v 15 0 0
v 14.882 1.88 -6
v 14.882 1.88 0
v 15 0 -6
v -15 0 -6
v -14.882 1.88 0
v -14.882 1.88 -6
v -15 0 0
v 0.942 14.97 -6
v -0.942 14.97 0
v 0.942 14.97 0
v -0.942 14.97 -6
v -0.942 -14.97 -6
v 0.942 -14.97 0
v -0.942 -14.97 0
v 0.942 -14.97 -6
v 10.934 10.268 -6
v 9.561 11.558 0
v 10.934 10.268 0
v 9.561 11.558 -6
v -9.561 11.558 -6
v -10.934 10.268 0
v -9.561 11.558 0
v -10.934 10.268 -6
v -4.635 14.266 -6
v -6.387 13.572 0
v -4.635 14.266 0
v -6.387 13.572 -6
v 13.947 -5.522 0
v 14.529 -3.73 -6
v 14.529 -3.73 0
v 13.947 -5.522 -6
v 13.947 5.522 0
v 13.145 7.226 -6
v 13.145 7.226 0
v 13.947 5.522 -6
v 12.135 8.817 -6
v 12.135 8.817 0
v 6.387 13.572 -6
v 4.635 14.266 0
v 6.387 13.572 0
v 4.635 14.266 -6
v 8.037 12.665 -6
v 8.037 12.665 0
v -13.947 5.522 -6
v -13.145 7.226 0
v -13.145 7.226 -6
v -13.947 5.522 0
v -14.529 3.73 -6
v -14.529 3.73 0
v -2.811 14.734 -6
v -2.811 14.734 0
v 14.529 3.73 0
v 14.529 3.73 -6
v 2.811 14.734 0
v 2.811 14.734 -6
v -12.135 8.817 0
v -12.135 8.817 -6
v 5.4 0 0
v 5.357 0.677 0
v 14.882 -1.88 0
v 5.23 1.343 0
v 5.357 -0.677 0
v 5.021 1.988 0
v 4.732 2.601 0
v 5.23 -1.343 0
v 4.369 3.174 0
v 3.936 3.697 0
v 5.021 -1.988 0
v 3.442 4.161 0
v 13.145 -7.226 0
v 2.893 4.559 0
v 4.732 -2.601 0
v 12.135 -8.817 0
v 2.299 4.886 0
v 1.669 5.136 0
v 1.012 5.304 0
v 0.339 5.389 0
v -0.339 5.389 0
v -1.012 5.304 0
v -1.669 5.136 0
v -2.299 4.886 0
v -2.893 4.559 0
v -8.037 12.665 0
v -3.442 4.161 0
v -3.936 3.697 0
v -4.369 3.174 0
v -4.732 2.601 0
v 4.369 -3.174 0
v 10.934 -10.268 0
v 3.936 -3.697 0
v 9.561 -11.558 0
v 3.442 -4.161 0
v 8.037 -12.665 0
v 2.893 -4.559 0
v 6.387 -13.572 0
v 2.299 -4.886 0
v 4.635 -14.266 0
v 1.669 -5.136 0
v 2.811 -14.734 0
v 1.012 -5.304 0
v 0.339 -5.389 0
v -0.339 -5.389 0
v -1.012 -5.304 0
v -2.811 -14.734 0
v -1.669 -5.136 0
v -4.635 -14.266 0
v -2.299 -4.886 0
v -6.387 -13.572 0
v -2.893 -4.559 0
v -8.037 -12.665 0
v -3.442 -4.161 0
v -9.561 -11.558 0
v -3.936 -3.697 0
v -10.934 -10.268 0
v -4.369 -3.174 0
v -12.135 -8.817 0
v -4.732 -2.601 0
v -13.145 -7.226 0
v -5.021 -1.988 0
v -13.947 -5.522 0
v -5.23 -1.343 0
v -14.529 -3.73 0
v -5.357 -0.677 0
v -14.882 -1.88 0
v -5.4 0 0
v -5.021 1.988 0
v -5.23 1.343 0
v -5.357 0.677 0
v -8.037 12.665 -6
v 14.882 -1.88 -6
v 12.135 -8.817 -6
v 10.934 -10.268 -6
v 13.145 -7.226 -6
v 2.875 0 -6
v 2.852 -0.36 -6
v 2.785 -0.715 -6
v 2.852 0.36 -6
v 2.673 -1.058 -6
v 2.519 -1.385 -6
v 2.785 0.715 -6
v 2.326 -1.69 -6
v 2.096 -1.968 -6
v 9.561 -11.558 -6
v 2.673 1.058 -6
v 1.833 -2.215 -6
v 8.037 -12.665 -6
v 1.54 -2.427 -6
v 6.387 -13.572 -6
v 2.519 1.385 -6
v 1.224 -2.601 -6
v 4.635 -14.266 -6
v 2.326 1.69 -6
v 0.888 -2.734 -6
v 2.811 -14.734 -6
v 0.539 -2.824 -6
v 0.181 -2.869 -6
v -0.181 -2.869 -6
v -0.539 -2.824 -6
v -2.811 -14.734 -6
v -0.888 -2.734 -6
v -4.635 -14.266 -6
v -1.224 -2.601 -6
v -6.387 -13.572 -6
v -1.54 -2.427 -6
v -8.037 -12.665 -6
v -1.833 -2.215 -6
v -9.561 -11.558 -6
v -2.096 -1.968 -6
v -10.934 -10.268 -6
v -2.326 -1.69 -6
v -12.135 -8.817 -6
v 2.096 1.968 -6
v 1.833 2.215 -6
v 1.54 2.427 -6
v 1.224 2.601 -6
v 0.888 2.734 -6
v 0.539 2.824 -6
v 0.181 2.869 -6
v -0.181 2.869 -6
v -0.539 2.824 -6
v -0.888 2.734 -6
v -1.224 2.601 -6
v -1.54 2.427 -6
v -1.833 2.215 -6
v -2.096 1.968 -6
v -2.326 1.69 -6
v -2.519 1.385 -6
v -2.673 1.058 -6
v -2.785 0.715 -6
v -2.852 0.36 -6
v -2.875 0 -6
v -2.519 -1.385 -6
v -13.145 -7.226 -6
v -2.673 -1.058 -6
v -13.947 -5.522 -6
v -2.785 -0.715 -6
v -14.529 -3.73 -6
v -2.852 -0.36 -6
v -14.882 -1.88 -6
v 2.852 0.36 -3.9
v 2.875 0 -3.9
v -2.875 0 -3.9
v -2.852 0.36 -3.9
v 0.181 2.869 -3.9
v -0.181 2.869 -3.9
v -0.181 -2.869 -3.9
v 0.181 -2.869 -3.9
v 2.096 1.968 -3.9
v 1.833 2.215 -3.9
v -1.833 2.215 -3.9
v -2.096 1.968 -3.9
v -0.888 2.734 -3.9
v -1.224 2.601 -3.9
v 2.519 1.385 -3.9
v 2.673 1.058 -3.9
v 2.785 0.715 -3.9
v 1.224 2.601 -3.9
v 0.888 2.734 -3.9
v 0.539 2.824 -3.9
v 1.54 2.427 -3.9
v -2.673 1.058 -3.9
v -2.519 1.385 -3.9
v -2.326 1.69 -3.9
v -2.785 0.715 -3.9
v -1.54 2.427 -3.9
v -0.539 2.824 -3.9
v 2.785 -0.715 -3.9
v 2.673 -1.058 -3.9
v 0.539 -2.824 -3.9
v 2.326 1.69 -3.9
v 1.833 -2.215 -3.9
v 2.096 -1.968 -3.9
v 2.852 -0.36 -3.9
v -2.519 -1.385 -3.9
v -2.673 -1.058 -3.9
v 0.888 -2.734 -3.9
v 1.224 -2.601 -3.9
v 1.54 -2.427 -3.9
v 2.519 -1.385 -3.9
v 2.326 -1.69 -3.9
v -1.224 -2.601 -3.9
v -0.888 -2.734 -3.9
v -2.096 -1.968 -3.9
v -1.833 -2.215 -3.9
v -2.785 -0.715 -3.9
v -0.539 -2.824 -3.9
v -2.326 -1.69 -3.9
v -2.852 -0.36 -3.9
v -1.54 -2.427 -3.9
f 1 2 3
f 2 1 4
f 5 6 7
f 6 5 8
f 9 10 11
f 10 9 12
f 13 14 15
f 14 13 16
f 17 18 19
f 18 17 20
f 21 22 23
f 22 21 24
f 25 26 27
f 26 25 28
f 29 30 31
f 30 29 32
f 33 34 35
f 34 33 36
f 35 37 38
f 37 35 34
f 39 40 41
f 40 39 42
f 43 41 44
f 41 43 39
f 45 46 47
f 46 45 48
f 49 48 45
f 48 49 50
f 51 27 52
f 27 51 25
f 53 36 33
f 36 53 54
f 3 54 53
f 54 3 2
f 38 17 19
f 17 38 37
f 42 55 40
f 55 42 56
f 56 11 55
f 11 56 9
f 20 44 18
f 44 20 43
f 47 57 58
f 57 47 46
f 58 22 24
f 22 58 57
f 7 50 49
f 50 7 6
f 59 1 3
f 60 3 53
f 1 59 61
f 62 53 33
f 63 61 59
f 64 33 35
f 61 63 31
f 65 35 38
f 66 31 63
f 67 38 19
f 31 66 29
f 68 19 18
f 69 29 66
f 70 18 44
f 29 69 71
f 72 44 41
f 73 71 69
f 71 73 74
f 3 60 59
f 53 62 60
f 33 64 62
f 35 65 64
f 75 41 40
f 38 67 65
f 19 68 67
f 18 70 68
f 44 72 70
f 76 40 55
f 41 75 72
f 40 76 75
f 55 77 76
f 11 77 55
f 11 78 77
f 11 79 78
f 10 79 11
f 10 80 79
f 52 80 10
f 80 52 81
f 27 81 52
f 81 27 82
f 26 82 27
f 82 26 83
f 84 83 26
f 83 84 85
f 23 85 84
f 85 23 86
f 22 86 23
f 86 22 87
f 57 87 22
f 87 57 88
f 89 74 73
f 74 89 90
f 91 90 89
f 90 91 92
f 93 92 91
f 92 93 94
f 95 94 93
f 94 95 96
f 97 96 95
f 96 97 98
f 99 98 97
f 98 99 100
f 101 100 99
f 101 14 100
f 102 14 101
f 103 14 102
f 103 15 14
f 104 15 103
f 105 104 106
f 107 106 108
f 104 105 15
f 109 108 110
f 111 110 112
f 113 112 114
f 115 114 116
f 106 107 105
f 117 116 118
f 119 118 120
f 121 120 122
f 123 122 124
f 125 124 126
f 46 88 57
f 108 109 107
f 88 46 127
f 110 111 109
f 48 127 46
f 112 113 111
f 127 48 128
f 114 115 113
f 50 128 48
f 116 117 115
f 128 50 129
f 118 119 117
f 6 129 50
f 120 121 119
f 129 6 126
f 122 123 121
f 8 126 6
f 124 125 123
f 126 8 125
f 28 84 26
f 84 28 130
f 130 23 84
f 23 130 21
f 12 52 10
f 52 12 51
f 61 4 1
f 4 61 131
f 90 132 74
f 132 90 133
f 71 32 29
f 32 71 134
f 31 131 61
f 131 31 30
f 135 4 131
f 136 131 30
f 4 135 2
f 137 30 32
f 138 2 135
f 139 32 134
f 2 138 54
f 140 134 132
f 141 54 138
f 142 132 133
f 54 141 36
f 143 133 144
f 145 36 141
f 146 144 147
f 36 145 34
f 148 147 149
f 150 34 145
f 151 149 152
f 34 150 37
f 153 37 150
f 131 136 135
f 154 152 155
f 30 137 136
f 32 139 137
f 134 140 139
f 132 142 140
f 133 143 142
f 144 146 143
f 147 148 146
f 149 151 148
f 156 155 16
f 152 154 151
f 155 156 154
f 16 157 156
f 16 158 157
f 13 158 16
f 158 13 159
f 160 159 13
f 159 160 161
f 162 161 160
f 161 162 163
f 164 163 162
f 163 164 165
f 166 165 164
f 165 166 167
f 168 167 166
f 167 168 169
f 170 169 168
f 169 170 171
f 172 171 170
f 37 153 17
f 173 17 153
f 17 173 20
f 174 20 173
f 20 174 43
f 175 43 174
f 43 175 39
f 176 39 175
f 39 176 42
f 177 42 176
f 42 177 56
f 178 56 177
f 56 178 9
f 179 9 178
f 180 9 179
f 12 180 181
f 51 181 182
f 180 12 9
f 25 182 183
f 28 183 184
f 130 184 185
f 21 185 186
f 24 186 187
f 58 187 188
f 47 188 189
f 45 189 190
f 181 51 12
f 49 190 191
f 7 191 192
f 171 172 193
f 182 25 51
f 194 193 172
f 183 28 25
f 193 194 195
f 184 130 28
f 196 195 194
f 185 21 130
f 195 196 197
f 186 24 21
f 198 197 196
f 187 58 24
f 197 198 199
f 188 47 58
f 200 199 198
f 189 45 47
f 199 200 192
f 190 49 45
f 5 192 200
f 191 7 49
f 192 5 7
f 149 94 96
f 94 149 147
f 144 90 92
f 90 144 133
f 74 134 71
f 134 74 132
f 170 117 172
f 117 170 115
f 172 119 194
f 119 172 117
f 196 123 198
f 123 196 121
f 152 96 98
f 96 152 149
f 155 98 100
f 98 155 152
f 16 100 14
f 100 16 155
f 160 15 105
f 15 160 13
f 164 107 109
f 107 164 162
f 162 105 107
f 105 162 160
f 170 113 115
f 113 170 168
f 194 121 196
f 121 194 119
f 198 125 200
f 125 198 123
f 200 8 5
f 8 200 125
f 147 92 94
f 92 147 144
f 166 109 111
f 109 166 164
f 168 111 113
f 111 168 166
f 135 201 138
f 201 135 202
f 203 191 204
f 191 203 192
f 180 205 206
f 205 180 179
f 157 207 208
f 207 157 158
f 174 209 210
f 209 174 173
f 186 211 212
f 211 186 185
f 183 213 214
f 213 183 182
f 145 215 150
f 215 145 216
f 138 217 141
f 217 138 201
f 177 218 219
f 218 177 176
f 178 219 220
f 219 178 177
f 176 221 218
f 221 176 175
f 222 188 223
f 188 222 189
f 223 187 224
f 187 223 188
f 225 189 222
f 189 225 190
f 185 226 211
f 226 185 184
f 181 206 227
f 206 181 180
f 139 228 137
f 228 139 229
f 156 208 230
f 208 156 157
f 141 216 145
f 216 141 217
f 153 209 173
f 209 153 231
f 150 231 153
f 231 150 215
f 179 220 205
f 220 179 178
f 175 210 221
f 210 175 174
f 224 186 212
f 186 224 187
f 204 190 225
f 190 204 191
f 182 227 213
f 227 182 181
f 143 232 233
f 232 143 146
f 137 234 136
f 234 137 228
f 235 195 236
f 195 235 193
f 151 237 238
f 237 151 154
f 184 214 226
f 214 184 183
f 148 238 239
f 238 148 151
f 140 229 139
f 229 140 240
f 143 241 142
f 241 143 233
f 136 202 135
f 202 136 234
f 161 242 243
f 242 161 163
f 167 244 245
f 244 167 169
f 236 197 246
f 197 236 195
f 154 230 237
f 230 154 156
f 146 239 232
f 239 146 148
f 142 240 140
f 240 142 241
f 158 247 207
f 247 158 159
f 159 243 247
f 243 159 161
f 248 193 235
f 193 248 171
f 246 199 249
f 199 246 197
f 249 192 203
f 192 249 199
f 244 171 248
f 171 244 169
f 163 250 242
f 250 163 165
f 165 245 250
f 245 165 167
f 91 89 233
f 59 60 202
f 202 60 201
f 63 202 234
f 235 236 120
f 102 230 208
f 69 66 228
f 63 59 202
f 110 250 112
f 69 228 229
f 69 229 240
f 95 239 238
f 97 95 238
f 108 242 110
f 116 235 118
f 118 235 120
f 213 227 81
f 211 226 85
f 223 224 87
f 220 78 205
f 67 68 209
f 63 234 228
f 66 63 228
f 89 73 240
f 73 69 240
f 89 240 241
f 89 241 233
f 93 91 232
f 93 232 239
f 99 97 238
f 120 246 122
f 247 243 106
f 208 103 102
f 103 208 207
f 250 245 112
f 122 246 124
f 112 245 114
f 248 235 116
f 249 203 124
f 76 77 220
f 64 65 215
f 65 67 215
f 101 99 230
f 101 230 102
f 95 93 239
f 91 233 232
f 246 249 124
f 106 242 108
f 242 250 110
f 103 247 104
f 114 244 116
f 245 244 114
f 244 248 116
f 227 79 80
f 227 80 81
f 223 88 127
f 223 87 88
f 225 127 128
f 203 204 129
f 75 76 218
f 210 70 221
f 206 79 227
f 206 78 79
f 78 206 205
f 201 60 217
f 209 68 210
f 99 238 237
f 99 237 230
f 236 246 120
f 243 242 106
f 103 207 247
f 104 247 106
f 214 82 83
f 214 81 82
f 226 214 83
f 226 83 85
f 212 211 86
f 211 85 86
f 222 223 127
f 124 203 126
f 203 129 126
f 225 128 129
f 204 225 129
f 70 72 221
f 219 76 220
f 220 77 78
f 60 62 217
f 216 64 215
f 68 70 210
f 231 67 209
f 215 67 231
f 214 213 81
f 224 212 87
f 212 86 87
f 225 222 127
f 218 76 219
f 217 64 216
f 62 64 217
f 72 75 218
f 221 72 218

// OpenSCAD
$fn = 50;


difference() {
	union() {
		translate(v = [0, 0, -6.0000000000]) {
			cylinder(h = 6, r = 15.0000000000);
		}
		translate(v = [0, 0, -9.0000000000]) {
			cylinder(h = 9, r = 2.8750000000);
		}
	}
	union() {
		translate(v = [0, 0, 0]) {
			rotate(a = [0, 0, 0]) {
				difference() {
					union() {
						translate(v = [0, 0, -9.0000000000]) {
							cylinder(h = 9, r = 2.6000000000);
						}
						translate(v = [0, 0, -3.9000000000]) {
							cylinder(h = 3.9000000000, r1 = 2.8750000000, r2 = 5.4000000000);
						}
						translate(v = [0, 0, -9.0000000000]) {
							cylinder(h = 9, r = 2.8750000000);
						}
						translate(v = [0, 0, -9.0000000000]) {
							cylinder(h = 9, r = 2.6000000000);
						}
					}
					union();
				}
			}
		}
	}
}
